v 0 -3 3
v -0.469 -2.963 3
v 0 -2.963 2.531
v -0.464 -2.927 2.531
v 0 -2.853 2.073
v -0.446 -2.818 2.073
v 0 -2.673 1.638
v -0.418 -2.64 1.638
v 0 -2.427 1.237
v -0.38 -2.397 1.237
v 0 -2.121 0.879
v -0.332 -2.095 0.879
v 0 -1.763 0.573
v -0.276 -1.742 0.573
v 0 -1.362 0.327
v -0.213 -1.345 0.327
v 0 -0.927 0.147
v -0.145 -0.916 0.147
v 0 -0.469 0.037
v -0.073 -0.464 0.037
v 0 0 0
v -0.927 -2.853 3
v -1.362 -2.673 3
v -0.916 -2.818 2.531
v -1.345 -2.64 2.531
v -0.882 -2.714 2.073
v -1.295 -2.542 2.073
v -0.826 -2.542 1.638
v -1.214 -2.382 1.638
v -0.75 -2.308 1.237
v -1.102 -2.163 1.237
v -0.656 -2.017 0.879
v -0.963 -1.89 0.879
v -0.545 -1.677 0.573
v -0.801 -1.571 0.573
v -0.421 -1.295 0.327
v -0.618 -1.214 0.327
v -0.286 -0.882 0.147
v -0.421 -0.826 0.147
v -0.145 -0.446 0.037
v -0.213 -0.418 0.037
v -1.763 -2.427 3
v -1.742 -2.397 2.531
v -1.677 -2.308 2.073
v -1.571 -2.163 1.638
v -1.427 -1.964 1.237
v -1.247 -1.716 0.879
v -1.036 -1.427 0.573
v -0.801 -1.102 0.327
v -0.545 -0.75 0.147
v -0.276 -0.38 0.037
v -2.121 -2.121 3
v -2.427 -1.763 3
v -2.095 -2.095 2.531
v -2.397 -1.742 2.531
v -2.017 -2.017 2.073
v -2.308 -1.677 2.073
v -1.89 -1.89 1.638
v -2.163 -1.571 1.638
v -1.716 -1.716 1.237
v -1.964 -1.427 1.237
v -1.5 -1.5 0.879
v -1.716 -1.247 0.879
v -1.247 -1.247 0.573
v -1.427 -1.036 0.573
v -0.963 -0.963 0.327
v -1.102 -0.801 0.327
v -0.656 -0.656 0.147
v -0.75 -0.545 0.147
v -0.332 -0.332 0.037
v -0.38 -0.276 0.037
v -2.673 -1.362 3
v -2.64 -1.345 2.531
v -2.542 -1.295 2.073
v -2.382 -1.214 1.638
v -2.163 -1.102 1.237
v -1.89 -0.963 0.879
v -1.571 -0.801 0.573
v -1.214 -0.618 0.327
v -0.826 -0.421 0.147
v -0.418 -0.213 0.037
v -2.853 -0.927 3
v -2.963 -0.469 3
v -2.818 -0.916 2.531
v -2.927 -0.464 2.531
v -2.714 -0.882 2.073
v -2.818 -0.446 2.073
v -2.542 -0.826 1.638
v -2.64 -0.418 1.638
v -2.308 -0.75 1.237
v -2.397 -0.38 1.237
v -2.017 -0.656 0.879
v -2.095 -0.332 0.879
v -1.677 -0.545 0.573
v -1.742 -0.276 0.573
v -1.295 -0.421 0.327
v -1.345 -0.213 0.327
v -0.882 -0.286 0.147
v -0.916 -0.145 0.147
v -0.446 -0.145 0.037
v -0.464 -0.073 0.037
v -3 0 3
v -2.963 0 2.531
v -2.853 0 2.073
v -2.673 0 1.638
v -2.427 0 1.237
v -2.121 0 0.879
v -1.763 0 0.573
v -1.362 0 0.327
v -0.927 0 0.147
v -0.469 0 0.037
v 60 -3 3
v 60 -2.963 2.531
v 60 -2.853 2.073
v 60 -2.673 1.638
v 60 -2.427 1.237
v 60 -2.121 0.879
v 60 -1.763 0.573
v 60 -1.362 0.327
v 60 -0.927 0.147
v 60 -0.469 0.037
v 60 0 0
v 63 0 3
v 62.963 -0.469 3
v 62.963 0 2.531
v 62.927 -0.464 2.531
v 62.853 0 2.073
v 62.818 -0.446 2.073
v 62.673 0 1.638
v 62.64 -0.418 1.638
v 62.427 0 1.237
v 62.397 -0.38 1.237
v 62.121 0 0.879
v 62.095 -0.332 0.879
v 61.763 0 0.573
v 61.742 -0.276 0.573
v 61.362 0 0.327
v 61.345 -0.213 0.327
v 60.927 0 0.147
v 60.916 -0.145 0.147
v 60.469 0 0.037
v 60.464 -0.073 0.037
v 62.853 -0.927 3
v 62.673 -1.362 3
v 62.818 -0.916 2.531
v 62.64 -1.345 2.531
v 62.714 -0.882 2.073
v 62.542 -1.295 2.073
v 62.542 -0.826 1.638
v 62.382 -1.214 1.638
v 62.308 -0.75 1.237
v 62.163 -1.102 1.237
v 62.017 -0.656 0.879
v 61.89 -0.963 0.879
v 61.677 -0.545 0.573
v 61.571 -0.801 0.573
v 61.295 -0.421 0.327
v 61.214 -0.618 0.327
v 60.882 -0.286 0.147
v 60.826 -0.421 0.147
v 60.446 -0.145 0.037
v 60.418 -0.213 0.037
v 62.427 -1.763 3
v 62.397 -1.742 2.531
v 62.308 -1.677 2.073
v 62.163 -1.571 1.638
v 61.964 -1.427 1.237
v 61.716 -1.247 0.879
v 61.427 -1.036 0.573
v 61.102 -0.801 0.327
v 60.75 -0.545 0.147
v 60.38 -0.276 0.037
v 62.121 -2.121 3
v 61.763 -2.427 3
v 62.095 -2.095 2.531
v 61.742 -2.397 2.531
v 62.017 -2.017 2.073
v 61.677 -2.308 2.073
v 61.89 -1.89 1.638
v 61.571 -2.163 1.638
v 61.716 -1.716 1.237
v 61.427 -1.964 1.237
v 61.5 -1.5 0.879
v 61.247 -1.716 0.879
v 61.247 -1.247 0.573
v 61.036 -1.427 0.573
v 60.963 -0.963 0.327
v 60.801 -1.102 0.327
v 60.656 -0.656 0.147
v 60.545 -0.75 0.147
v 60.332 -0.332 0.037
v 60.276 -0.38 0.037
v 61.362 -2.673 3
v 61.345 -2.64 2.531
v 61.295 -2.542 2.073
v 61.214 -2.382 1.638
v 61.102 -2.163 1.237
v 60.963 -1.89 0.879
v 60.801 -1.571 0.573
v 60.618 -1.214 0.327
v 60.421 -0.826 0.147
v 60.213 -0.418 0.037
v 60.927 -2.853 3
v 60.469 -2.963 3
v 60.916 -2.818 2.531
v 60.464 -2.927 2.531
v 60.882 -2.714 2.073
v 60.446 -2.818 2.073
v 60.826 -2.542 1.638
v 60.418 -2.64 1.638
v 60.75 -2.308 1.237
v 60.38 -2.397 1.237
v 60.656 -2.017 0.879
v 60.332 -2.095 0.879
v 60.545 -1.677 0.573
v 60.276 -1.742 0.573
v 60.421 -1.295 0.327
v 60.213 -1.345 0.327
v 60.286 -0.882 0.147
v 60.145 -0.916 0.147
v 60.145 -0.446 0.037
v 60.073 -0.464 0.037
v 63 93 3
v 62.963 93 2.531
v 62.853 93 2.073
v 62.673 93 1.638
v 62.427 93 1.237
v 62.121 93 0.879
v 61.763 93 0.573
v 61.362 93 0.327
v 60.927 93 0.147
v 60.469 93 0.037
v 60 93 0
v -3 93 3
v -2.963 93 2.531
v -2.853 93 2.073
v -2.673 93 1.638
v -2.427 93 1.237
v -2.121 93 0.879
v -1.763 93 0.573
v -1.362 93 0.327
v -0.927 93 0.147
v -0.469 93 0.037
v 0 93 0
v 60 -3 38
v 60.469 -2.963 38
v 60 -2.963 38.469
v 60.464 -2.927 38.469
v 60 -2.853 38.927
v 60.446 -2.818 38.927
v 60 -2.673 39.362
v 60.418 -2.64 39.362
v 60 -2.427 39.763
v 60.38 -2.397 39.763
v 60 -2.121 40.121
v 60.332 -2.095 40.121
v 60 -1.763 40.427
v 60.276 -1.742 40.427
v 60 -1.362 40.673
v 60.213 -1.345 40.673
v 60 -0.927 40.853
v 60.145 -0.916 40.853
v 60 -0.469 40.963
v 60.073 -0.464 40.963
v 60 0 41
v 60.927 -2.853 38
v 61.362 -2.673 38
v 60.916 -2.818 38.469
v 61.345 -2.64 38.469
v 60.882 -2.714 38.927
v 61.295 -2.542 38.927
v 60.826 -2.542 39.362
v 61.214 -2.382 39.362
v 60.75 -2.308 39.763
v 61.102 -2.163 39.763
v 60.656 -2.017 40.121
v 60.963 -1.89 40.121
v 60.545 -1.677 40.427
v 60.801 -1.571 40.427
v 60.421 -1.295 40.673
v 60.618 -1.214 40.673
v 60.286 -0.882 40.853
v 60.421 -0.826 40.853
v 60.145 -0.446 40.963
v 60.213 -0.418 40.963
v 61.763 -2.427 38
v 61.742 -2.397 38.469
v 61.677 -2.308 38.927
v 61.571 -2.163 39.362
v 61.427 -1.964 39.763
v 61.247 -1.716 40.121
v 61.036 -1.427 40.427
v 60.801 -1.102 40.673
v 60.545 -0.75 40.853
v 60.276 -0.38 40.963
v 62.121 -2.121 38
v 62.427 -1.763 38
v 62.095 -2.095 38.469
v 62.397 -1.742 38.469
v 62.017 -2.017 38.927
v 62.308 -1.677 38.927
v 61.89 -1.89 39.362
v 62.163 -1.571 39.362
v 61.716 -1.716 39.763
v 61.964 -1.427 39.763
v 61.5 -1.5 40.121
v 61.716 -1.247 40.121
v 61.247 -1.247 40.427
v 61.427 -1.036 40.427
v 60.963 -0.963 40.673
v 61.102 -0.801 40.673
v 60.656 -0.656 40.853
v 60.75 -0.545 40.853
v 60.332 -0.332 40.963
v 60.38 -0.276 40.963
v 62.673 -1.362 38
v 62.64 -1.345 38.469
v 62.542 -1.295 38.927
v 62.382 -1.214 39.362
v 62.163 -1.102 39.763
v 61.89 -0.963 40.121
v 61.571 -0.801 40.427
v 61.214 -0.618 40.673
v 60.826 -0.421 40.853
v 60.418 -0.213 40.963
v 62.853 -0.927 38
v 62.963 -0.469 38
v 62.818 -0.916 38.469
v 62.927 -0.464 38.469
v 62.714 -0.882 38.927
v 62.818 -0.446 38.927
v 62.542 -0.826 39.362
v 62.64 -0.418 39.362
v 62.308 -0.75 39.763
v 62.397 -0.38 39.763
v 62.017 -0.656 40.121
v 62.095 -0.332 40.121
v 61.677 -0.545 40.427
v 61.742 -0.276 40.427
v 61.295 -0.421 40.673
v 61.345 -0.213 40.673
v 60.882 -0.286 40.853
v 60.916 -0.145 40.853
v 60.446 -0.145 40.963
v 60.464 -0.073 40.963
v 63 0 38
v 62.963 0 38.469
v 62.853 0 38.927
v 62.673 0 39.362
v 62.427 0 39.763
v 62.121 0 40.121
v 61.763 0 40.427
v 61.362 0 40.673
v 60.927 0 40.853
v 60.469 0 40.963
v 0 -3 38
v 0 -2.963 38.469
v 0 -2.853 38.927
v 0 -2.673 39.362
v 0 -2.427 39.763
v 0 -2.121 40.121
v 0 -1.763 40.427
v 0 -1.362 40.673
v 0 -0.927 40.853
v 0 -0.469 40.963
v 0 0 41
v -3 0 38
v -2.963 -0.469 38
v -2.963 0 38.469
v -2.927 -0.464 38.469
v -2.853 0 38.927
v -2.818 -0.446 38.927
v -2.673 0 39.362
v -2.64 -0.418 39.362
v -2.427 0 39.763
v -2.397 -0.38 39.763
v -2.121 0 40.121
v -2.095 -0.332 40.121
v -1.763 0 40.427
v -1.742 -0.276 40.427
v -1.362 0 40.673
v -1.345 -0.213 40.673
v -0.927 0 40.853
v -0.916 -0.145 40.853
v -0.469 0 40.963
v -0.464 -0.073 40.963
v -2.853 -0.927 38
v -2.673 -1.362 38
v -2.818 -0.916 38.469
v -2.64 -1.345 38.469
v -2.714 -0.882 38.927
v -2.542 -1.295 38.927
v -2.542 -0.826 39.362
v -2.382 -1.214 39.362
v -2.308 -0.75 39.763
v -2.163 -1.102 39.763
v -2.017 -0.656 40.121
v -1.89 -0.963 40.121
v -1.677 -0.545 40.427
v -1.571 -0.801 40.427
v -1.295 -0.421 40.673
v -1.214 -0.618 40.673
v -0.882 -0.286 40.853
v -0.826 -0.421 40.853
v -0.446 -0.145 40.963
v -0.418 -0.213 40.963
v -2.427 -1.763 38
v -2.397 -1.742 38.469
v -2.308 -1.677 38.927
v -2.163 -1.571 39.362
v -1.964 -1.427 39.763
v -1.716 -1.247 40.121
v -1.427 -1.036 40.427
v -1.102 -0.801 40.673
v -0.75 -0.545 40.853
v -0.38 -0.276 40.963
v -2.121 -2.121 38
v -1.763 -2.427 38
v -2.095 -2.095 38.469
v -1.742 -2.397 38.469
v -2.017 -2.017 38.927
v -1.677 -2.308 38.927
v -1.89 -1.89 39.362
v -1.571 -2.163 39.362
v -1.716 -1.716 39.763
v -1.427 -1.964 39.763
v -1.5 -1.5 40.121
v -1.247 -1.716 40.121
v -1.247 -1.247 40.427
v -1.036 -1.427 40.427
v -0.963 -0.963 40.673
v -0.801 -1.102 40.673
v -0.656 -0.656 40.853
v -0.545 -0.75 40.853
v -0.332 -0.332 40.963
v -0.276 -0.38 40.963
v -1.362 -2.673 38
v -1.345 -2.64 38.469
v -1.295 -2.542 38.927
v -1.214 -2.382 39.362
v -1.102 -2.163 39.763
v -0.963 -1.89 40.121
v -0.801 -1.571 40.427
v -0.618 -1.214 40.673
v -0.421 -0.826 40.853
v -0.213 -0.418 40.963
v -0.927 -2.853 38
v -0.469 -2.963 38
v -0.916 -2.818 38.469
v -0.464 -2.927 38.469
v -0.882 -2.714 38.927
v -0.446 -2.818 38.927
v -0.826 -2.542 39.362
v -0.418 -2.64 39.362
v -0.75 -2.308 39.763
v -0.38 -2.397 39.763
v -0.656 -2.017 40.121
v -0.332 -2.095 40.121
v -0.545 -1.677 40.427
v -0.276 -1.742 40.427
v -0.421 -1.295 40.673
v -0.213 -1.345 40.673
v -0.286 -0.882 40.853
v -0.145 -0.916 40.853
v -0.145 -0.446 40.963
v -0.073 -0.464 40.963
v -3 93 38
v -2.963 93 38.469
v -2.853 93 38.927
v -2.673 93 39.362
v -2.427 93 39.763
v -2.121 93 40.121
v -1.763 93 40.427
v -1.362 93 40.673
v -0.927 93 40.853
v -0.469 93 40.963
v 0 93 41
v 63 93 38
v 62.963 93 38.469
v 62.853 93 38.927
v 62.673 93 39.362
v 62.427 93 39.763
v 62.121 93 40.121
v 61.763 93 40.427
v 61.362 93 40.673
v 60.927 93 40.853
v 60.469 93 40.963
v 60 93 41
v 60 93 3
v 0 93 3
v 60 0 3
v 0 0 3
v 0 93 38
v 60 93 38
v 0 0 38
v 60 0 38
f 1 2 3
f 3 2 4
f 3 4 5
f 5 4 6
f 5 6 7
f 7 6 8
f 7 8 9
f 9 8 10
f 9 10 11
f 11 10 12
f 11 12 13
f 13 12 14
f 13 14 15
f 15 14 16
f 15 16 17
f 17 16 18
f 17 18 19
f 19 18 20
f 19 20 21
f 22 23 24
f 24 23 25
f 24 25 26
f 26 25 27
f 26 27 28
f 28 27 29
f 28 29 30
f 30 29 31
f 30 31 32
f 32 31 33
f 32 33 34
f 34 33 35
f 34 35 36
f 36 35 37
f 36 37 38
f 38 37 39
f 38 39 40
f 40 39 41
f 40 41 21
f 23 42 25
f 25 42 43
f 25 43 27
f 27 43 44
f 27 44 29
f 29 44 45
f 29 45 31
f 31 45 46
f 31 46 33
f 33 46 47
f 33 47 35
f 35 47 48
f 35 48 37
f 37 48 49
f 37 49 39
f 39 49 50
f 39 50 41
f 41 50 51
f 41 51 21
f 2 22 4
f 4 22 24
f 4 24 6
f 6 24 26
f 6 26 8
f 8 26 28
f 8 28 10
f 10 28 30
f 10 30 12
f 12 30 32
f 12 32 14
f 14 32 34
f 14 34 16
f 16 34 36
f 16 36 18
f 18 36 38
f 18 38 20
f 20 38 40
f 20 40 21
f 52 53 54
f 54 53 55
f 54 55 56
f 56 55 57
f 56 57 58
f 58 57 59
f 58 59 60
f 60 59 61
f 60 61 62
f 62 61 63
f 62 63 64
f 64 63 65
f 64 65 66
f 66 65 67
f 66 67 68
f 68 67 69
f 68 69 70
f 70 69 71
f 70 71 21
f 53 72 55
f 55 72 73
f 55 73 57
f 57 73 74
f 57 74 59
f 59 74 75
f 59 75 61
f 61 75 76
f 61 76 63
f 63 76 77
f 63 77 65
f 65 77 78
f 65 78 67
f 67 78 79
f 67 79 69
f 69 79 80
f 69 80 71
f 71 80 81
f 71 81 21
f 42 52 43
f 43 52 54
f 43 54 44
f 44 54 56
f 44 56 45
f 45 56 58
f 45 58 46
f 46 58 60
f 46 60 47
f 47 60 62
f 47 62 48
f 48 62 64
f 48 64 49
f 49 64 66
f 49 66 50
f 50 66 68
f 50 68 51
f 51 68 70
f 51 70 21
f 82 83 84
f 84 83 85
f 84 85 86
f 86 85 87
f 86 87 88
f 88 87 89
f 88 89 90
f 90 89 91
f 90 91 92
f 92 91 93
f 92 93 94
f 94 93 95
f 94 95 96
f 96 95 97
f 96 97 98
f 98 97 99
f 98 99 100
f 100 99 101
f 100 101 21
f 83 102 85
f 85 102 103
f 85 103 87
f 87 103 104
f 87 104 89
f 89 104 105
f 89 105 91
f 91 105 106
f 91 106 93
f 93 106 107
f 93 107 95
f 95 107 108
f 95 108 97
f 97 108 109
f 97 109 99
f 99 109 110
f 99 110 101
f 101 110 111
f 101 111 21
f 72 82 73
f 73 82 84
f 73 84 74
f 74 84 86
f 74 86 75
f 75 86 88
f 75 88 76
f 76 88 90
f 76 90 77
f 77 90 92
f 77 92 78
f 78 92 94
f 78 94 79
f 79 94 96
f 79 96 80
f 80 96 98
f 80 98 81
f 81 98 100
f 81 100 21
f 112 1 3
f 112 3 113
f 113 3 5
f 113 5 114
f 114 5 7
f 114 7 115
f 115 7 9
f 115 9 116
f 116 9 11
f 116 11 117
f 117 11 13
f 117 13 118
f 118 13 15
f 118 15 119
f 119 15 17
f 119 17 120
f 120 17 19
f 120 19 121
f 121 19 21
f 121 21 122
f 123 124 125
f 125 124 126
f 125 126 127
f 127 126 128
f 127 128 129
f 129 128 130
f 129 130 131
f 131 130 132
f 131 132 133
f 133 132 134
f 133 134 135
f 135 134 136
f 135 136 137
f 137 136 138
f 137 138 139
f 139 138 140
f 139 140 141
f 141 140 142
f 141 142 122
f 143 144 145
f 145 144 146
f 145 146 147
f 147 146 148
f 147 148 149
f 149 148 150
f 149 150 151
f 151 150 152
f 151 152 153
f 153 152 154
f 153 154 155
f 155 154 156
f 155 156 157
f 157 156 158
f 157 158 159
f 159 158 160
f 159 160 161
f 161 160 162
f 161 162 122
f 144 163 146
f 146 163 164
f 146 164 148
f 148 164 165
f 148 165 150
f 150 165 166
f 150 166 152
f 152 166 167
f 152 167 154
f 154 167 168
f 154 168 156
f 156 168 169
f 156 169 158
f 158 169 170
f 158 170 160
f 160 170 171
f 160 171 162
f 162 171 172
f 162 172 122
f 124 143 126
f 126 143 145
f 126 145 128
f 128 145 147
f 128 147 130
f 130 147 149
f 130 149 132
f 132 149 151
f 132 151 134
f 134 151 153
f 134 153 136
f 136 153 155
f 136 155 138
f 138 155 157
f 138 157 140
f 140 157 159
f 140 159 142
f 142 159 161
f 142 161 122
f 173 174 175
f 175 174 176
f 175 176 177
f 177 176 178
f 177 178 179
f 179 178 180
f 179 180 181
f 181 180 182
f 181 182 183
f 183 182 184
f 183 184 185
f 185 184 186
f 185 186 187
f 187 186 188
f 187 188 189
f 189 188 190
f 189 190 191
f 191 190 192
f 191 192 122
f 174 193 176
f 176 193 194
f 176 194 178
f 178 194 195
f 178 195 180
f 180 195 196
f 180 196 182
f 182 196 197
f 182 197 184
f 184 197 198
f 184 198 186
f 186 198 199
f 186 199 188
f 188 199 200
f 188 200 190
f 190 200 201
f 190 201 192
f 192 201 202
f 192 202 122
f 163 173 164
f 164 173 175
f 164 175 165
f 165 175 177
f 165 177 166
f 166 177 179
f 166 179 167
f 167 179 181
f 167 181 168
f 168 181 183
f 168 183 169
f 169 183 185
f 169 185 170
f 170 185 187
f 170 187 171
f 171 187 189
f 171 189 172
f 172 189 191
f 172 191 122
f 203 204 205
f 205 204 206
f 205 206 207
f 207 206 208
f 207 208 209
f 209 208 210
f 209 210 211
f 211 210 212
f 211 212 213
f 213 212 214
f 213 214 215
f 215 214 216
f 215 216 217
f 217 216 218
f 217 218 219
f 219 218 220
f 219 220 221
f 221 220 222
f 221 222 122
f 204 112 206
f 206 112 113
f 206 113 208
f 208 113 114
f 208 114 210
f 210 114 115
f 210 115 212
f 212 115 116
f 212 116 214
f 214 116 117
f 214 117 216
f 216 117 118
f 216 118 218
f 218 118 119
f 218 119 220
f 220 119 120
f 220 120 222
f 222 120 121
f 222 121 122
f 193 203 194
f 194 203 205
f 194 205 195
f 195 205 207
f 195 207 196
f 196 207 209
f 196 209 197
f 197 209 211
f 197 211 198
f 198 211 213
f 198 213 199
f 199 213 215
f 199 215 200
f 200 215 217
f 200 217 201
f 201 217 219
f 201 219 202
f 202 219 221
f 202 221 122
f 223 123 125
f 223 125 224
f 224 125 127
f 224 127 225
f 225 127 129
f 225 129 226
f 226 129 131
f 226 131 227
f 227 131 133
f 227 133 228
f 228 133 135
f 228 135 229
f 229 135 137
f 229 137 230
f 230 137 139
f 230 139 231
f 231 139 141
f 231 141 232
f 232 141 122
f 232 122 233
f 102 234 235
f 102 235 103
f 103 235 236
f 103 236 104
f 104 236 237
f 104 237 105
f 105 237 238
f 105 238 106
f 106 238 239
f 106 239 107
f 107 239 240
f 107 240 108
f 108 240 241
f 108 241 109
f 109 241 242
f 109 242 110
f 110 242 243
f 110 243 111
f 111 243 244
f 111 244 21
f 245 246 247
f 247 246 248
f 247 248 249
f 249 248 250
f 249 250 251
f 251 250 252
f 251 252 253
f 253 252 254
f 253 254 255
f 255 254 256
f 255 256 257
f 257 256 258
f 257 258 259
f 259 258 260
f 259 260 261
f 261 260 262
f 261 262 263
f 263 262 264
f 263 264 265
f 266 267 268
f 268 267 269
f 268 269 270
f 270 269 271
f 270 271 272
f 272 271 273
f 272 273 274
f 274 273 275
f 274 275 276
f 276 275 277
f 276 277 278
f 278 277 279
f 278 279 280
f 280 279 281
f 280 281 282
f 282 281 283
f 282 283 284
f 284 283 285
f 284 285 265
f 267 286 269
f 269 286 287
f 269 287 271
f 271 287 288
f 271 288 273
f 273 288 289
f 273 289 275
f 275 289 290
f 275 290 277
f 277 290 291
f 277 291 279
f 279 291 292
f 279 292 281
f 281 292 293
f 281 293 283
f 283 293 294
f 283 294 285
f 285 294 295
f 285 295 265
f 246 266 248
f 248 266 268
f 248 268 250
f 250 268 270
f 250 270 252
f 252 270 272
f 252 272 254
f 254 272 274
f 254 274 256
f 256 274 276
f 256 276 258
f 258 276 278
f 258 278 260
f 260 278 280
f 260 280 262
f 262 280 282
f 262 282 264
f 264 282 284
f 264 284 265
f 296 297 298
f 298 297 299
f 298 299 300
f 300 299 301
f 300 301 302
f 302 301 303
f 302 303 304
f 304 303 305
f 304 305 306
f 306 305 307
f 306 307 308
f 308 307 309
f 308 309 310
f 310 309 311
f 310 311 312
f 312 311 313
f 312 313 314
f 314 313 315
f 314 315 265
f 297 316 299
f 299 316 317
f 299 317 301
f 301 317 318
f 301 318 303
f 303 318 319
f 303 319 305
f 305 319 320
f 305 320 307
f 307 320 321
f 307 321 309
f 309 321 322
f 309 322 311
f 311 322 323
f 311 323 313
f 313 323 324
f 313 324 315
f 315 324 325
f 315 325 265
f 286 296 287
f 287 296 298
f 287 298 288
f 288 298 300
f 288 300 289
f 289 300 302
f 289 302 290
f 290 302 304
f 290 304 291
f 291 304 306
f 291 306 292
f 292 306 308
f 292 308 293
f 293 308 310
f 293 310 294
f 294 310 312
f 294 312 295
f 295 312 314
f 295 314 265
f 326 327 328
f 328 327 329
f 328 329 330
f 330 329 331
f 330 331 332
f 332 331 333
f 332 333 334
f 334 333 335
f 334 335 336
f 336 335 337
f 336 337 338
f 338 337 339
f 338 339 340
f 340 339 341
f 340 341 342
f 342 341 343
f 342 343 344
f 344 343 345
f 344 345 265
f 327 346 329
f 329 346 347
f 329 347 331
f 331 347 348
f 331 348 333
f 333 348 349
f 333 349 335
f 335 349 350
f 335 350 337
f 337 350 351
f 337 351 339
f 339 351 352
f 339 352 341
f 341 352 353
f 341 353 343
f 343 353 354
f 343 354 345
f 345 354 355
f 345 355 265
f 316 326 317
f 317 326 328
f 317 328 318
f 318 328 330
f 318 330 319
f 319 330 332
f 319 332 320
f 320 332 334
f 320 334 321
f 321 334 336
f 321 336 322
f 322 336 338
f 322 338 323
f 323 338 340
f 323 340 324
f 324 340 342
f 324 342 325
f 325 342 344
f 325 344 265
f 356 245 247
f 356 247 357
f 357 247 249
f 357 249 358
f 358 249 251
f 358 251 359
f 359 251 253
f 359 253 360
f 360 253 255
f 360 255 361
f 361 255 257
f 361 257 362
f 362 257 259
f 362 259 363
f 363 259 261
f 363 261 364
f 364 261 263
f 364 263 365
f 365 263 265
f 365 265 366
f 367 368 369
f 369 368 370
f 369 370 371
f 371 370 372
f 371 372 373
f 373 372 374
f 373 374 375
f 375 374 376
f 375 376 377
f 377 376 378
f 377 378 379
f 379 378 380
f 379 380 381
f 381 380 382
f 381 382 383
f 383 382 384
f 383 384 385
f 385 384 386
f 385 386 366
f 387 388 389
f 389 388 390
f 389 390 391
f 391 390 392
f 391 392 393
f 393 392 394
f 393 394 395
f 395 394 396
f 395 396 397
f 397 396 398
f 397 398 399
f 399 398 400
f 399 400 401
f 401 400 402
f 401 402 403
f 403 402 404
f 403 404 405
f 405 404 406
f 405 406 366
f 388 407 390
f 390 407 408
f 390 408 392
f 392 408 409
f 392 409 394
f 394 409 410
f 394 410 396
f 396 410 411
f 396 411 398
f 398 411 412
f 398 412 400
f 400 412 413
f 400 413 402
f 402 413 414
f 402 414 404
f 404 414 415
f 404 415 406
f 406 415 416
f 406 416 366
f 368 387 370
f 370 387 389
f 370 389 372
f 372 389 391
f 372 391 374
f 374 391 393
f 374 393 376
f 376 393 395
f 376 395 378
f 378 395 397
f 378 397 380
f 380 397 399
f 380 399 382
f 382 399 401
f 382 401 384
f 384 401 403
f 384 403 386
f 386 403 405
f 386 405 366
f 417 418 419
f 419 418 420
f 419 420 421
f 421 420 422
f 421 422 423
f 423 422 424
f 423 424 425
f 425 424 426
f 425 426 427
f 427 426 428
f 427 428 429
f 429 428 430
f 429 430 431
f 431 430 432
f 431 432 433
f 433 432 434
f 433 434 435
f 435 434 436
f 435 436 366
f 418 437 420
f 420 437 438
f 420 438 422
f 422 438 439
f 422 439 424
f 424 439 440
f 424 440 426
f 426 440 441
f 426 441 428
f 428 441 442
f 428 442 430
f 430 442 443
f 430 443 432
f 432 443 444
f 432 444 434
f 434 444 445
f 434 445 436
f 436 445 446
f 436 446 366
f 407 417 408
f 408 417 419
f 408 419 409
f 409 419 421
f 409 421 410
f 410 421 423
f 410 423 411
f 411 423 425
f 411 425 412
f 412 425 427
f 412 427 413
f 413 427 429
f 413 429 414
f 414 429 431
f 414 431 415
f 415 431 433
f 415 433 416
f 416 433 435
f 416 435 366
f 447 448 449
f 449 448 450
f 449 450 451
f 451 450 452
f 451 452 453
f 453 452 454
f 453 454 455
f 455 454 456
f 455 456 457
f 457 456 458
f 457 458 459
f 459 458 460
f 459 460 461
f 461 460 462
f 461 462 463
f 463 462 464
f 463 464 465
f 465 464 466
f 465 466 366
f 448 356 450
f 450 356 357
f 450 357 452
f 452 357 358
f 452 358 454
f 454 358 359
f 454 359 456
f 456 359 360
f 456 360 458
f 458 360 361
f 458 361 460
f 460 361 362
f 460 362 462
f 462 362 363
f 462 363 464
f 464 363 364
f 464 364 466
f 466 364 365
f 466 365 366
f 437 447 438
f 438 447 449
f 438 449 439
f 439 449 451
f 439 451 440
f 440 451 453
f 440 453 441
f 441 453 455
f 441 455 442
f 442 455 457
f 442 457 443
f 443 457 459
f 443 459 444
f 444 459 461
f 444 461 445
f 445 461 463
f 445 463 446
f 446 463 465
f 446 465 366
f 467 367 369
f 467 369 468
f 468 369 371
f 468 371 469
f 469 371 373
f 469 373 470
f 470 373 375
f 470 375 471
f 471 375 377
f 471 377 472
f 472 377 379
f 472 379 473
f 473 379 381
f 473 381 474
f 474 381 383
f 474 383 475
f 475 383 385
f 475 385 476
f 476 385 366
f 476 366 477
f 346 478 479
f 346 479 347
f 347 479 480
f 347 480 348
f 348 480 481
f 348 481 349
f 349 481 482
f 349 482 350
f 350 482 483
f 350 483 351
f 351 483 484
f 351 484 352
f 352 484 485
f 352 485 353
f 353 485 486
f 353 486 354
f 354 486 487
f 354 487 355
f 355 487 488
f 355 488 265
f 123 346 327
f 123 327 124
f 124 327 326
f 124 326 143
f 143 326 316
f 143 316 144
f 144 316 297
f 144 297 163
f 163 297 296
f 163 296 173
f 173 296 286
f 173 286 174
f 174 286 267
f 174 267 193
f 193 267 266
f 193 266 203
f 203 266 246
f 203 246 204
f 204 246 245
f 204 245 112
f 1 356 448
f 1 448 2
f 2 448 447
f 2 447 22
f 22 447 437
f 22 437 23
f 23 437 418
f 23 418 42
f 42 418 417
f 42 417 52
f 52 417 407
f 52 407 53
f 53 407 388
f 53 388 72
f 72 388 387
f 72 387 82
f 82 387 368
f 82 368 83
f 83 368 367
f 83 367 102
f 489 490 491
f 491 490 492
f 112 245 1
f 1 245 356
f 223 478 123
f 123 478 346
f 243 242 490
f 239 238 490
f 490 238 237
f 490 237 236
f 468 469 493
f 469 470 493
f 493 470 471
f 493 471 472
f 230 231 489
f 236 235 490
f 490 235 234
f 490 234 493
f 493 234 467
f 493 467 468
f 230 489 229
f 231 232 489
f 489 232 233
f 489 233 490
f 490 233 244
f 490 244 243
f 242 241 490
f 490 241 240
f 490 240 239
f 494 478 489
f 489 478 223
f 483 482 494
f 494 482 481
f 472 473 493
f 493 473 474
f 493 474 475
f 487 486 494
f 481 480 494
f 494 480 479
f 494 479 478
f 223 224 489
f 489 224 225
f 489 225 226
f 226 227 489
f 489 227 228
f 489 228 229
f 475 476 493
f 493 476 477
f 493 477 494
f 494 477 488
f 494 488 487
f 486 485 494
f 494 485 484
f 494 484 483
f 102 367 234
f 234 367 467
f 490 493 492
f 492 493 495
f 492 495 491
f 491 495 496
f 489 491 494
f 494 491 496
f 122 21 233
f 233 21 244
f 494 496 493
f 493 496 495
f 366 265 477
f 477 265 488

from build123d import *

# Parameters (mm, degrees)
IZIM1_W                     = 90
IZIM1_H                     = 60
Y_KSEKLIK_EKSTR_ZYON1_DEPTH = 3
IZIM2_W                     = 96
IZIM2_H                     = 66
IZIM2_W_2                   = 90
IZIM2_H_2                   = 60
Y_KSEKLIK_EKSTR_ZYON2_DEPTH = 38
IZIM3_W                     = 60
IZIM3_H                     = 3
KES_EKSTR_ZYON1_DEPTH       = 35
IZIM4_W                     = 66
IZIM4_H                     = 96
Y_KSEKLIK_EKSTR_ZYON3_DEPTH = 3
RADYUS4_R                   = 3
RADYUS5_R                   = 3
RADYUS6_R                   = 3
RADYUS7_R                   = 3


with BuildPart() as part:
    # Çizim1 → Yükseklik-Ekstrüzyon1 (new body)
    with BuildSketch(Plane(origin=(0, 0, 0), x_dir=(0, 1, 0), z_dir=(0, 0, 1))):
        with Locations((45, -30)):
            Rectangle(IZIM1_W, IZIM1_H)
    extrude(amount=Y_KSEKLIK_EKSTR_ZYON1_DEPTH)

    # Çizim2 → Yükseklik-Ekstrüzyon2 (add)
    with BuildSketch(Plane(origin=(0, 0, 0), x_dir=(0, 1, 0), z_dir=(0, 0, 1))):
        with Locations((45, -30)):
            Rectangle(IZIM2_W, IZIM2_H)
        with Locations((45, -30)):
            Rectangle(IZIM2_W_2, IZIM2_H_2, mode=Mode.SUBTRACT)
    extrude(amount=Y_KSEKLIK_EKSTR_ZYON2_DEPTH)

    # Çizim3 → Kes-Ekstrüzyon1 (cut)
    with BuildSketch(Plane.XY.offset(38)):
        with Locations((30, 91.5)):
            Rectangle(IZIM3_W, IZIM3_H)
    extrude(amount=-KES_EKSTR_ZYON1_DEPTH, mode=Mode.SUBTRACT)

    # Çizim4 → Yükseklik-Ekstrüzyon3 (add)
    with BuildSketch(Plane.XY.offset(38)):
        with Locations((30, 45)):
            Rectangle(IZIM4_W, IZIM4_H)
    extrude(amount=Y_KSEKLIK_EKSTR_ZYON3_DEPTH)

    # Radyus4
    radyus4_edges = [part.edges().sort_by_distance(p)[0] for p in [
        (-3, -3, 20.5),
    ]]
    fillet(radyus4_edges, radius=RADYUS4_R)

    # Radyus5
    radyus5_edges = [part.edges().sort_by_distance(p)[0] for p in [
        (63, -3, 20.5),
    ]]
    fillet(radyus5_edges, radius=RADYUS5_R)

    # Radyus6
    radyus6_edges = [part.edges().sort_by_distance(p)[0] for p in [
        (-3, 46.5, 41),
        (30, -3, 41),
        (-2.121320344, -2.121320344, 41),
        (63, 46.5, 41),
        (62.121320344, -2.121320344, 41),
    ]]
    fillet(radyus6_edges, radius=RADYUS6_R)

    # Radyus7
    radyus7_edges = [part.edges().sort_by_distance(p)[0] for p in [
        (-3, 46.5, 0),
        (30, -3, 0),
        (-2.121320344, -2.121320344, 0),
        (63, 46.5, 0),
        (62.121320344, -2.121320344, 0),
    ]]
    fillet(radyus7_edges, radius=RADYUS7_R)


solid = part.part
